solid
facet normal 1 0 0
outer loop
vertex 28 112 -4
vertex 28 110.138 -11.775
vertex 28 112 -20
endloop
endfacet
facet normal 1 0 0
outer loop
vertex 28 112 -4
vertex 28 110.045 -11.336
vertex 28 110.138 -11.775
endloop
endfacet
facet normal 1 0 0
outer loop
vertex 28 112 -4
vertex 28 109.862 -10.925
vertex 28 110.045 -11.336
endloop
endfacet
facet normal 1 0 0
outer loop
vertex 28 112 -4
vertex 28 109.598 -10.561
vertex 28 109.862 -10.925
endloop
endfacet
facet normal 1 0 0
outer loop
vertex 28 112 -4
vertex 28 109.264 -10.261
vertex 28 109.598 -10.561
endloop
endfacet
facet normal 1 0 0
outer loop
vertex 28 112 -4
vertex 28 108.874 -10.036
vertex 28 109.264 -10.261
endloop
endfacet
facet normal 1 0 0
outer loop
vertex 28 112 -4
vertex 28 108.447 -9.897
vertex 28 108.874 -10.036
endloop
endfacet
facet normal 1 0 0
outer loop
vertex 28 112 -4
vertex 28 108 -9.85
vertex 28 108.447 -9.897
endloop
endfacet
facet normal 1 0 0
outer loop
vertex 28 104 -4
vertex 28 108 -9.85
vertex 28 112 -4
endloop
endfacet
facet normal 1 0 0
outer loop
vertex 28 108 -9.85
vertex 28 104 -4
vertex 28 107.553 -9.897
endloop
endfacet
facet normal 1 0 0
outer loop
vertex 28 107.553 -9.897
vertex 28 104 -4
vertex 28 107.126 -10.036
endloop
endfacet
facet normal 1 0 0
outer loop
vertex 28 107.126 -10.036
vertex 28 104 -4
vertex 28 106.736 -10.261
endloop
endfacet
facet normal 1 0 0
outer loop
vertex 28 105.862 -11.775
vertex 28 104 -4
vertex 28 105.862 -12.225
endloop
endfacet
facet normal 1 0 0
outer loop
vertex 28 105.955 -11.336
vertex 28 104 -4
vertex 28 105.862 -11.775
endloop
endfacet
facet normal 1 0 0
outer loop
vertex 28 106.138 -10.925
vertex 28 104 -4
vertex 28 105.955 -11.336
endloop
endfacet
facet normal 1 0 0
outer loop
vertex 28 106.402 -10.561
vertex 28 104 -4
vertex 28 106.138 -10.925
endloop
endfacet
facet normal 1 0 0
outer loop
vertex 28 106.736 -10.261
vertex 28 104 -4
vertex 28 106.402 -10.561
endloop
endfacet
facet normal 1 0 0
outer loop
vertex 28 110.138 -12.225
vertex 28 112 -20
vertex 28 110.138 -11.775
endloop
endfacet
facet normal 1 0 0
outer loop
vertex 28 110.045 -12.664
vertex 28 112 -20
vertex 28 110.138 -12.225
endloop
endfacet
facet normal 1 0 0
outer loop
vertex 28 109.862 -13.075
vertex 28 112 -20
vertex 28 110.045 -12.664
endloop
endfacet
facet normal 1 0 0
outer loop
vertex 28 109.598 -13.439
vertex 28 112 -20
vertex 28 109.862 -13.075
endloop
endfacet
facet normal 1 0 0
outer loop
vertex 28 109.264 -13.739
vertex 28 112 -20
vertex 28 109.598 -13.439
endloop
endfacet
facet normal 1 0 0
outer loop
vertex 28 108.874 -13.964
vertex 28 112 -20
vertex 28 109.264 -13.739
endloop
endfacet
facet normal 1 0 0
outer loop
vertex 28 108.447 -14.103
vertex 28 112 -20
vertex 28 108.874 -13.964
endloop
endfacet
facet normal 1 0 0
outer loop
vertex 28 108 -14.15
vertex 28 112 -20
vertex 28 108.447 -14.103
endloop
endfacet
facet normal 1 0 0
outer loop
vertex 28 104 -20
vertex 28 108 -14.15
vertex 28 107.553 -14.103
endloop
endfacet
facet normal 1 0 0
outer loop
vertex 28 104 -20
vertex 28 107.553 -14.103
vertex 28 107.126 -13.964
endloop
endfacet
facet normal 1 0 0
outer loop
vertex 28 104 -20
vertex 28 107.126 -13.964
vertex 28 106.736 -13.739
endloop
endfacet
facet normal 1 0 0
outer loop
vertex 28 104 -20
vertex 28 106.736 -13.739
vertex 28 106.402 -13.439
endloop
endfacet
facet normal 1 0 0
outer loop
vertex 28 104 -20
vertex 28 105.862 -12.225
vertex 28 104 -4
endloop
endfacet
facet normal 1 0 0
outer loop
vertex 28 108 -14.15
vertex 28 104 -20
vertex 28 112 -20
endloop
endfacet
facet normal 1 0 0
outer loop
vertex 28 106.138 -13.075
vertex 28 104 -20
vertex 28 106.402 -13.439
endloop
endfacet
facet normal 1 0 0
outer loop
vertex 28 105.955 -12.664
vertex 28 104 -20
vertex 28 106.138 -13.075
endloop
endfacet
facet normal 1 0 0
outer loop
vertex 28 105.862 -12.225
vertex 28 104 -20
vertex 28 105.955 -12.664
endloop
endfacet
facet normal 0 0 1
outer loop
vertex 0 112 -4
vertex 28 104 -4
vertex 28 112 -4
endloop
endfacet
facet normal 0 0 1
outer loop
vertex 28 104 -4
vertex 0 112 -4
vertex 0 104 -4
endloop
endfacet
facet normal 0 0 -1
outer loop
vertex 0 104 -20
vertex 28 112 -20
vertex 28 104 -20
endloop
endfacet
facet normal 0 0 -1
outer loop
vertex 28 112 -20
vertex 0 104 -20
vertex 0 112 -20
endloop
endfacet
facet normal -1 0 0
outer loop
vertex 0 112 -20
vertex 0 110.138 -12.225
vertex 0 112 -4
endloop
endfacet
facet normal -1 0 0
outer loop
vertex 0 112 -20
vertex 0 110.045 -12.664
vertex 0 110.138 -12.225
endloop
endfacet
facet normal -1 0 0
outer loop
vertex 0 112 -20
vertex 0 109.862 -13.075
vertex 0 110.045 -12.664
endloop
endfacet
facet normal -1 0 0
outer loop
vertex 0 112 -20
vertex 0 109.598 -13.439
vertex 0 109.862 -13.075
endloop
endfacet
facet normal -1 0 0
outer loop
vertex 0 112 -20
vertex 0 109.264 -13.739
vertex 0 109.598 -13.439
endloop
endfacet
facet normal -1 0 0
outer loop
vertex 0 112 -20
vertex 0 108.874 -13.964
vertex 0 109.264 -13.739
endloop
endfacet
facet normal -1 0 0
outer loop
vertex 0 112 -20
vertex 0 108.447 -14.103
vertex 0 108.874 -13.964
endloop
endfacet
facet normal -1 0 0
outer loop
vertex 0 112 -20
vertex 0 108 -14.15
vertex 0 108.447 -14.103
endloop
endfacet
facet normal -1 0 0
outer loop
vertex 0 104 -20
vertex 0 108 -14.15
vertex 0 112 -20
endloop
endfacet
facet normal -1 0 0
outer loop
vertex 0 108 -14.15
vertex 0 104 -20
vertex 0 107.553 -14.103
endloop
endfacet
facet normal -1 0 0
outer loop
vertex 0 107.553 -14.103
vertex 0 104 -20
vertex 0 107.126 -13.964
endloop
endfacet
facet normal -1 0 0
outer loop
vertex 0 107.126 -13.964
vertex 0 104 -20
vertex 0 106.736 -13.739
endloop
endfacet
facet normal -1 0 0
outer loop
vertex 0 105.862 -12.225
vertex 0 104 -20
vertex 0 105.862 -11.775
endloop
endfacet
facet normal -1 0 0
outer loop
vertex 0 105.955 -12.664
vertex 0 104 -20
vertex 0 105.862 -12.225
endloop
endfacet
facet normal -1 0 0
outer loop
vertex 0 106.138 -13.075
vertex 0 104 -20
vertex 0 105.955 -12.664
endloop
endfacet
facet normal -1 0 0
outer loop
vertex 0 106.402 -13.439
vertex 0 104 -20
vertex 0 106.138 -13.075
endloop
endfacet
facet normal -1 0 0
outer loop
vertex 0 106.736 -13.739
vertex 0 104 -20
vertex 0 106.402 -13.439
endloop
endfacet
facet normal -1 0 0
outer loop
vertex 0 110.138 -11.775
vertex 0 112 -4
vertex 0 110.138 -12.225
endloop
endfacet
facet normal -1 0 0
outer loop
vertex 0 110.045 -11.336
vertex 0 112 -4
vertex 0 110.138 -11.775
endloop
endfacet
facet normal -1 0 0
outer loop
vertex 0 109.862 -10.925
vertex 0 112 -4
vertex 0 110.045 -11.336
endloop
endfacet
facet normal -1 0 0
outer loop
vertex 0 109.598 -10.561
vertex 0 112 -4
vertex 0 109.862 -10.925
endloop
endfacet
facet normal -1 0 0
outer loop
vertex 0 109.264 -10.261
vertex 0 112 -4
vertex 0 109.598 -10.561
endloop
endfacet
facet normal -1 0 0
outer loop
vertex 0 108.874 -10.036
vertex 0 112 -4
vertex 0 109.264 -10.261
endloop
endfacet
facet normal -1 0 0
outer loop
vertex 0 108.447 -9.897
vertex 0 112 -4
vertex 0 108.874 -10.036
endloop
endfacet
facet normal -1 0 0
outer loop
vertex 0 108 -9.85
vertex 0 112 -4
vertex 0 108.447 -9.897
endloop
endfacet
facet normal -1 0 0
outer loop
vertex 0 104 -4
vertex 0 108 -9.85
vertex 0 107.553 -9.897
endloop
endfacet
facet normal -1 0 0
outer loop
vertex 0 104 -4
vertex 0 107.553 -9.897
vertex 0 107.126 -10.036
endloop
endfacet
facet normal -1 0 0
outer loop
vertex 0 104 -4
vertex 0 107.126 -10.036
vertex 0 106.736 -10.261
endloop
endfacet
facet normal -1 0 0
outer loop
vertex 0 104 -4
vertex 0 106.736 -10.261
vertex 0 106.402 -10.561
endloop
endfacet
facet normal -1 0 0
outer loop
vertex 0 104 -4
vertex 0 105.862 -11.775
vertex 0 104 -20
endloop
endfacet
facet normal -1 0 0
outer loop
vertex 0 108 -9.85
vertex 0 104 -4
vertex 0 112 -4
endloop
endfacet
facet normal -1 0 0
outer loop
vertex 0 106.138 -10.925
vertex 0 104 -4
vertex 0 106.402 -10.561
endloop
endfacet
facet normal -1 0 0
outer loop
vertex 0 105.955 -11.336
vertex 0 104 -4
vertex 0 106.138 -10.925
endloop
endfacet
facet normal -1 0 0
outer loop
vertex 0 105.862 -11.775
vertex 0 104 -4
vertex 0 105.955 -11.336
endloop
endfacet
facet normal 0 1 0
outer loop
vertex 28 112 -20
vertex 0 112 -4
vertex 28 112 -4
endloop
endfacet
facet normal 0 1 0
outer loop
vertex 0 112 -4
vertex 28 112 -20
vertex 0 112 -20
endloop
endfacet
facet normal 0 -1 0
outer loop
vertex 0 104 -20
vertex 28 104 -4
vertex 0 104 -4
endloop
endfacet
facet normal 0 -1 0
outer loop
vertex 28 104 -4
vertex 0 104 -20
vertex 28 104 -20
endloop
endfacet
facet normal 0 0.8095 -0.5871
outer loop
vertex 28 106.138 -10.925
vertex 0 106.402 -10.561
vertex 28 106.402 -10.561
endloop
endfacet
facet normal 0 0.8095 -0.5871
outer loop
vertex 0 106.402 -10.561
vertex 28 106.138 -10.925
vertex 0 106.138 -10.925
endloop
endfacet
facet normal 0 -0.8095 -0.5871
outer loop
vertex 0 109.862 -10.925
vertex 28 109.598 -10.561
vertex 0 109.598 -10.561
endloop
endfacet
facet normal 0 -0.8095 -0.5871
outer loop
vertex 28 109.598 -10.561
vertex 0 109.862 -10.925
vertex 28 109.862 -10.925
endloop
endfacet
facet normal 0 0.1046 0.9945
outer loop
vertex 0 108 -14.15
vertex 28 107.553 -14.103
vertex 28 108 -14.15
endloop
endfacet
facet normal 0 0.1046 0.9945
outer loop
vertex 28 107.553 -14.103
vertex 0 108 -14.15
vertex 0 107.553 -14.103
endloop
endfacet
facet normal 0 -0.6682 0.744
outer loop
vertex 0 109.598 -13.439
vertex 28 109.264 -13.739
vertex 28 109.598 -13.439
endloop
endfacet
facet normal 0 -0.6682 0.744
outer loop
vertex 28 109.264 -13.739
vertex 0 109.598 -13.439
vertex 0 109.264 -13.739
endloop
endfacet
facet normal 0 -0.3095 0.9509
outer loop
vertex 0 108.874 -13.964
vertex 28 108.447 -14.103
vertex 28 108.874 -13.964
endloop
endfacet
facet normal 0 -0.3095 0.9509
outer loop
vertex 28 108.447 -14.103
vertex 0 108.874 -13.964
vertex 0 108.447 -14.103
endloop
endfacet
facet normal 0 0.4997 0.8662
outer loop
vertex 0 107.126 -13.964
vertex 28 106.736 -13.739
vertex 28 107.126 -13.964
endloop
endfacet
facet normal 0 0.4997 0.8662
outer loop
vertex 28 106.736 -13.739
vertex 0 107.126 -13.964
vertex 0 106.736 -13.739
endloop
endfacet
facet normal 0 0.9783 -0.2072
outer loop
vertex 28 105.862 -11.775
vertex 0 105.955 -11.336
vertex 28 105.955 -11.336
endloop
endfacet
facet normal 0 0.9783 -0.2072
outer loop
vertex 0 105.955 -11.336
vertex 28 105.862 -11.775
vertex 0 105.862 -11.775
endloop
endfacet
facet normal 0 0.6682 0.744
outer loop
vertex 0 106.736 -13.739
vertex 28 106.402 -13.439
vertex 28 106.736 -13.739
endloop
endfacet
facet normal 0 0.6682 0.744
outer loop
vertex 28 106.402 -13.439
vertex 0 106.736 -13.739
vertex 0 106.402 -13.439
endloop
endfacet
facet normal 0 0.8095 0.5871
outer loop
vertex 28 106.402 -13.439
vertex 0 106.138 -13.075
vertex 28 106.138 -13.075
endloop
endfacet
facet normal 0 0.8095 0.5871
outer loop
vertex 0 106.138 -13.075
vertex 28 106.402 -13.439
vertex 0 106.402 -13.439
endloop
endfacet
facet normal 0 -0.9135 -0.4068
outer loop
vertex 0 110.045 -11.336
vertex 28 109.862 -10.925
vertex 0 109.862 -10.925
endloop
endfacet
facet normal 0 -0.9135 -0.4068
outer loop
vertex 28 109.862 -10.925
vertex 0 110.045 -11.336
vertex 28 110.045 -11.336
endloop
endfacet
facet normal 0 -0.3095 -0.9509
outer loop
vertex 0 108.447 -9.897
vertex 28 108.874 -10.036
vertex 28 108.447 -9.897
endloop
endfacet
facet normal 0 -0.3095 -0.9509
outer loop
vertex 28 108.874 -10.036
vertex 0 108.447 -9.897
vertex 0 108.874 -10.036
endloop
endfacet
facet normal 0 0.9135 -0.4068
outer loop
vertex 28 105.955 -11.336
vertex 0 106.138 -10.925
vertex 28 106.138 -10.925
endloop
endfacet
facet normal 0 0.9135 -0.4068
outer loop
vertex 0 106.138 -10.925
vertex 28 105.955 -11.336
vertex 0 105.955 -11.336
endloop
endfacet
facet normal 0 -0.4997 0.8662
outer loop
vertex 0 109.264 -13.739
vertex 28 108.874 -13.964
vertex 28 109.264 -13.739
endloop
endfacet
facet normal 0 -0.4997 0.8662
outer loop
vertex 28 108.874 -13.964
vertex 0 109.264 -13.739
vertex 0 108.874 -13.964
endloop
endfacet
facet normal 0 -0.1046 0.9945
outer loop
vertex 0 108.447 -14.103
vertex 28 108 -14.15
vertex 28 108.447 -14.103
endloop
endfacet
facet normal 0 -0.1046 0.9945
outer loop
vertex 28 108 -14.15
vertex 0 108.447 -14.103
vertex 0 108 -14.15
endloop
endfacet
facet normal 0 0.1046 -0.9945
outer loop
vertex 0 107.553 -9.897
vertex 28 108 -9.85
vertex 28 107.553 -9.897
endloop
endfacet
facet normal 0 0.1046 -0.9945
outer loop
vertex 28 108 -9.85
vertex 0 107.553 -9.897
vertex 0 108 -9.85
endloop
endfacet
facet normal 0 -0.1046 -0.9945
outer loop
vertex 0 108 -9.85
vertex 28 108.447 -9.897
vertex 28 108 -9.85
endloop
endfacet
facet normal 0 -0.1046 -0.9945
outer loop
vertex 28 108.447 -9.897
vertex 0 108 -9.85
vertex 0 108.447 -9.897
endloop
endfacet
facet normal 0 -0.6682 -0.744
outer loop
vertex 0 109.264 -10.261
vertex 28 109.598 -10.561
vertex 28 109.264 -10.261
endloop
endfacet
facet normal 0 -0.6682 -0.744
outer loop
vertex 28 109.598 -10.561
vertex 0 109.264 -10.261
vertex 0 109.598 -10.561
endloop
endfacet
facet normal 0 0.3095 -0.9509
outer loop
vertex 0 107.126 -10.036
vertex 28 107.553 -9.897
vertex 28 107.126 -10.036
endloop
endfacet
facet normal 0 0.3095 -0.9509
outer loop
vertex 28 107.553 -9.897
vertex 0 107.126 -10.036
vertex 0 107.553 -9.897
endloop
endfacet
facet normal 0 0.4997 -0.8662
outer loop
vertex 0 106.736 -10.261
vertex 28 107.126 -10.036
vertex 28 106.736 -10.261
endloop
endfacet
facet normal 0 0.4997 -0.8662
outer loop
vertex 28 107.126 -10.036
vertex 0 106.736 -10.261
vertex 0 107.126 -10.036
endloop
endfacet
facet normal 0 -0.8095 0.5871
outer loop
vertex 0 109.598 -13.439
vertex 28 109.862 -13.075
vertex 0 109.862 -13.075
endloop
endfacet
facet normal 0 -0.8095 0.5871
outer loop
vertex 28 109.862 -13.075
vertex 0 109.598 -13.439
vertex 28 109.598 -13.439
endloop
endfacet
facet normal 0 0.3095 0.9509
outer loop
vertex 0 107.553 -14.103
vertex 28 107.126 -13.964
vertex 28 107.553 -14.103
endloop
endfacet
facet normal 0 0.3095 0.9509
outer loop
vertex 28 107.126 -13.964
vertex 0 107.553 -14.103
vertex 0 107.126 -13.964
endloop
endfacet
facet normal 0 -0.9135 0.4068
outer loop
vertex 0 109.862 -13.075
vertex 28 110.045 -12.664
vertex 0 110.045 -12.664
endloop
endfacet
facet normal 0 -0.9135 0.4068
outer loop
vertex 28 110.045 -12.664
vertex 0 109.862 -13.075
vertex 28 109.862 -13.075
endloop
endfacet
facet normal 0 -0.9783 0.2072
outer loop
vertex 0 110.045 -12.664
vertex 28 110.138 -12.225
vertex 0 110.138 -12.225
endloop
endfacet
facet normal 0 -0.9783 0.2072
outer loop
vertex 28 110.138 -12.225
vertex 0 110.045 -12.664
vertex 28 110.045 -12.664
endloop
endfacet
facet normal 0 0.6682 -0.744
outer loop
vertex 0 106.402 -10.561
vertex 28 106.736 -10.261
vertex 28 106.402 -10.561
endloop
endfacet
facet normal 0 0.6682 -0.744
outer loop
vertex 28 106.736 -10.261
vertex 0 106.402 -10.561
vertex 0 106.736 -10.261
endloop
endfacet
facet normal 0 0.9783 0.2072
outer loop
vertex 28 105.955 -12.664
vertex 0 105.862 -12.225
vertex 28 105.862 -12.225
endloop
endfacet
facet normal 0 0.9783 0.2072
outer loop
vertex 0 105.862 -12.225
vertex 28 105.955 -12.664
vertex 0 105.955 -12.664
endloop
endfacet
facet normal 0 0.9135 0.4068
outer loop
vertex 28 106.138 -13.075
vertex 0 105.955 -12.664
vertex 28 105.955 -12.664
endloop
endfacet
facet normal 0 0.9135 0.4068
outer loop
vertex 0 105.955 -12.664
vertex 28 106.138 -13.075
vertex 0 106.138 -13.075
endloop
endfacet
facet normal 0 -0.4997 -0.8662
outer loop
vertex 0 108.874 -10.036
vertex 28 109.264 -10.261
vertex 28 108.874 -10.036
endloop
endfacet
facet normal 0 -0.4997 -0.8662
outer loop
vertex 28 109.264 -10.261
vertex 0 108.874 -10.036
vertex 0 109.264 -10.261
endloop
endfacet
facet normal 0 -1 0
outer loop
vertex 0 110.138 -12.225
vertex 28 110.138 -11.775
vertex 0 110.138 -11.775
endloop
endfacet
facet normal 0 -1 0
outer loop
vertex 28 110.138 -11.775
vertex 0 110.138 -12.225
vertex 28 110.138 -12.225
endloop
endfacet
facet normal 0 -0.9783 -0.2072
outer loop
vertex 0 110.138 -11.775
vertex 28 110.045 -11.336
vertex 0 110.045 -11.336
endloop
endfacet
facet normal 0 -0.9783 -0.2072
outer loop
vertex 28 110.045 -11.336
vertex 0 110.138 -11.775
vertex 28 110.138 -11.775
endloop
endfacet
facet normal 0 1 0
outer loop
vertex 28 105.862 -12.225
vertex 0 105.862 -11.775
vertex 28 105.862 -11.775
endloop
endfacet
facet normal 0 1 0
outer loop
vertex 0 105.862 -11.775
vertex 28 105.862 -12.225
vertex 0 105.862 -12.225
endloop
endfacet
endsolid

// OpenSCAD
// separate right GR
difference() {
union() {
    translate([0,104,-20])
    cube([28,8,16]);
}
    // hole
    translate([-4,108,-12])
    rotate([0,90,0])
    cylinder(r=2.15,60, $fn=30);
}
